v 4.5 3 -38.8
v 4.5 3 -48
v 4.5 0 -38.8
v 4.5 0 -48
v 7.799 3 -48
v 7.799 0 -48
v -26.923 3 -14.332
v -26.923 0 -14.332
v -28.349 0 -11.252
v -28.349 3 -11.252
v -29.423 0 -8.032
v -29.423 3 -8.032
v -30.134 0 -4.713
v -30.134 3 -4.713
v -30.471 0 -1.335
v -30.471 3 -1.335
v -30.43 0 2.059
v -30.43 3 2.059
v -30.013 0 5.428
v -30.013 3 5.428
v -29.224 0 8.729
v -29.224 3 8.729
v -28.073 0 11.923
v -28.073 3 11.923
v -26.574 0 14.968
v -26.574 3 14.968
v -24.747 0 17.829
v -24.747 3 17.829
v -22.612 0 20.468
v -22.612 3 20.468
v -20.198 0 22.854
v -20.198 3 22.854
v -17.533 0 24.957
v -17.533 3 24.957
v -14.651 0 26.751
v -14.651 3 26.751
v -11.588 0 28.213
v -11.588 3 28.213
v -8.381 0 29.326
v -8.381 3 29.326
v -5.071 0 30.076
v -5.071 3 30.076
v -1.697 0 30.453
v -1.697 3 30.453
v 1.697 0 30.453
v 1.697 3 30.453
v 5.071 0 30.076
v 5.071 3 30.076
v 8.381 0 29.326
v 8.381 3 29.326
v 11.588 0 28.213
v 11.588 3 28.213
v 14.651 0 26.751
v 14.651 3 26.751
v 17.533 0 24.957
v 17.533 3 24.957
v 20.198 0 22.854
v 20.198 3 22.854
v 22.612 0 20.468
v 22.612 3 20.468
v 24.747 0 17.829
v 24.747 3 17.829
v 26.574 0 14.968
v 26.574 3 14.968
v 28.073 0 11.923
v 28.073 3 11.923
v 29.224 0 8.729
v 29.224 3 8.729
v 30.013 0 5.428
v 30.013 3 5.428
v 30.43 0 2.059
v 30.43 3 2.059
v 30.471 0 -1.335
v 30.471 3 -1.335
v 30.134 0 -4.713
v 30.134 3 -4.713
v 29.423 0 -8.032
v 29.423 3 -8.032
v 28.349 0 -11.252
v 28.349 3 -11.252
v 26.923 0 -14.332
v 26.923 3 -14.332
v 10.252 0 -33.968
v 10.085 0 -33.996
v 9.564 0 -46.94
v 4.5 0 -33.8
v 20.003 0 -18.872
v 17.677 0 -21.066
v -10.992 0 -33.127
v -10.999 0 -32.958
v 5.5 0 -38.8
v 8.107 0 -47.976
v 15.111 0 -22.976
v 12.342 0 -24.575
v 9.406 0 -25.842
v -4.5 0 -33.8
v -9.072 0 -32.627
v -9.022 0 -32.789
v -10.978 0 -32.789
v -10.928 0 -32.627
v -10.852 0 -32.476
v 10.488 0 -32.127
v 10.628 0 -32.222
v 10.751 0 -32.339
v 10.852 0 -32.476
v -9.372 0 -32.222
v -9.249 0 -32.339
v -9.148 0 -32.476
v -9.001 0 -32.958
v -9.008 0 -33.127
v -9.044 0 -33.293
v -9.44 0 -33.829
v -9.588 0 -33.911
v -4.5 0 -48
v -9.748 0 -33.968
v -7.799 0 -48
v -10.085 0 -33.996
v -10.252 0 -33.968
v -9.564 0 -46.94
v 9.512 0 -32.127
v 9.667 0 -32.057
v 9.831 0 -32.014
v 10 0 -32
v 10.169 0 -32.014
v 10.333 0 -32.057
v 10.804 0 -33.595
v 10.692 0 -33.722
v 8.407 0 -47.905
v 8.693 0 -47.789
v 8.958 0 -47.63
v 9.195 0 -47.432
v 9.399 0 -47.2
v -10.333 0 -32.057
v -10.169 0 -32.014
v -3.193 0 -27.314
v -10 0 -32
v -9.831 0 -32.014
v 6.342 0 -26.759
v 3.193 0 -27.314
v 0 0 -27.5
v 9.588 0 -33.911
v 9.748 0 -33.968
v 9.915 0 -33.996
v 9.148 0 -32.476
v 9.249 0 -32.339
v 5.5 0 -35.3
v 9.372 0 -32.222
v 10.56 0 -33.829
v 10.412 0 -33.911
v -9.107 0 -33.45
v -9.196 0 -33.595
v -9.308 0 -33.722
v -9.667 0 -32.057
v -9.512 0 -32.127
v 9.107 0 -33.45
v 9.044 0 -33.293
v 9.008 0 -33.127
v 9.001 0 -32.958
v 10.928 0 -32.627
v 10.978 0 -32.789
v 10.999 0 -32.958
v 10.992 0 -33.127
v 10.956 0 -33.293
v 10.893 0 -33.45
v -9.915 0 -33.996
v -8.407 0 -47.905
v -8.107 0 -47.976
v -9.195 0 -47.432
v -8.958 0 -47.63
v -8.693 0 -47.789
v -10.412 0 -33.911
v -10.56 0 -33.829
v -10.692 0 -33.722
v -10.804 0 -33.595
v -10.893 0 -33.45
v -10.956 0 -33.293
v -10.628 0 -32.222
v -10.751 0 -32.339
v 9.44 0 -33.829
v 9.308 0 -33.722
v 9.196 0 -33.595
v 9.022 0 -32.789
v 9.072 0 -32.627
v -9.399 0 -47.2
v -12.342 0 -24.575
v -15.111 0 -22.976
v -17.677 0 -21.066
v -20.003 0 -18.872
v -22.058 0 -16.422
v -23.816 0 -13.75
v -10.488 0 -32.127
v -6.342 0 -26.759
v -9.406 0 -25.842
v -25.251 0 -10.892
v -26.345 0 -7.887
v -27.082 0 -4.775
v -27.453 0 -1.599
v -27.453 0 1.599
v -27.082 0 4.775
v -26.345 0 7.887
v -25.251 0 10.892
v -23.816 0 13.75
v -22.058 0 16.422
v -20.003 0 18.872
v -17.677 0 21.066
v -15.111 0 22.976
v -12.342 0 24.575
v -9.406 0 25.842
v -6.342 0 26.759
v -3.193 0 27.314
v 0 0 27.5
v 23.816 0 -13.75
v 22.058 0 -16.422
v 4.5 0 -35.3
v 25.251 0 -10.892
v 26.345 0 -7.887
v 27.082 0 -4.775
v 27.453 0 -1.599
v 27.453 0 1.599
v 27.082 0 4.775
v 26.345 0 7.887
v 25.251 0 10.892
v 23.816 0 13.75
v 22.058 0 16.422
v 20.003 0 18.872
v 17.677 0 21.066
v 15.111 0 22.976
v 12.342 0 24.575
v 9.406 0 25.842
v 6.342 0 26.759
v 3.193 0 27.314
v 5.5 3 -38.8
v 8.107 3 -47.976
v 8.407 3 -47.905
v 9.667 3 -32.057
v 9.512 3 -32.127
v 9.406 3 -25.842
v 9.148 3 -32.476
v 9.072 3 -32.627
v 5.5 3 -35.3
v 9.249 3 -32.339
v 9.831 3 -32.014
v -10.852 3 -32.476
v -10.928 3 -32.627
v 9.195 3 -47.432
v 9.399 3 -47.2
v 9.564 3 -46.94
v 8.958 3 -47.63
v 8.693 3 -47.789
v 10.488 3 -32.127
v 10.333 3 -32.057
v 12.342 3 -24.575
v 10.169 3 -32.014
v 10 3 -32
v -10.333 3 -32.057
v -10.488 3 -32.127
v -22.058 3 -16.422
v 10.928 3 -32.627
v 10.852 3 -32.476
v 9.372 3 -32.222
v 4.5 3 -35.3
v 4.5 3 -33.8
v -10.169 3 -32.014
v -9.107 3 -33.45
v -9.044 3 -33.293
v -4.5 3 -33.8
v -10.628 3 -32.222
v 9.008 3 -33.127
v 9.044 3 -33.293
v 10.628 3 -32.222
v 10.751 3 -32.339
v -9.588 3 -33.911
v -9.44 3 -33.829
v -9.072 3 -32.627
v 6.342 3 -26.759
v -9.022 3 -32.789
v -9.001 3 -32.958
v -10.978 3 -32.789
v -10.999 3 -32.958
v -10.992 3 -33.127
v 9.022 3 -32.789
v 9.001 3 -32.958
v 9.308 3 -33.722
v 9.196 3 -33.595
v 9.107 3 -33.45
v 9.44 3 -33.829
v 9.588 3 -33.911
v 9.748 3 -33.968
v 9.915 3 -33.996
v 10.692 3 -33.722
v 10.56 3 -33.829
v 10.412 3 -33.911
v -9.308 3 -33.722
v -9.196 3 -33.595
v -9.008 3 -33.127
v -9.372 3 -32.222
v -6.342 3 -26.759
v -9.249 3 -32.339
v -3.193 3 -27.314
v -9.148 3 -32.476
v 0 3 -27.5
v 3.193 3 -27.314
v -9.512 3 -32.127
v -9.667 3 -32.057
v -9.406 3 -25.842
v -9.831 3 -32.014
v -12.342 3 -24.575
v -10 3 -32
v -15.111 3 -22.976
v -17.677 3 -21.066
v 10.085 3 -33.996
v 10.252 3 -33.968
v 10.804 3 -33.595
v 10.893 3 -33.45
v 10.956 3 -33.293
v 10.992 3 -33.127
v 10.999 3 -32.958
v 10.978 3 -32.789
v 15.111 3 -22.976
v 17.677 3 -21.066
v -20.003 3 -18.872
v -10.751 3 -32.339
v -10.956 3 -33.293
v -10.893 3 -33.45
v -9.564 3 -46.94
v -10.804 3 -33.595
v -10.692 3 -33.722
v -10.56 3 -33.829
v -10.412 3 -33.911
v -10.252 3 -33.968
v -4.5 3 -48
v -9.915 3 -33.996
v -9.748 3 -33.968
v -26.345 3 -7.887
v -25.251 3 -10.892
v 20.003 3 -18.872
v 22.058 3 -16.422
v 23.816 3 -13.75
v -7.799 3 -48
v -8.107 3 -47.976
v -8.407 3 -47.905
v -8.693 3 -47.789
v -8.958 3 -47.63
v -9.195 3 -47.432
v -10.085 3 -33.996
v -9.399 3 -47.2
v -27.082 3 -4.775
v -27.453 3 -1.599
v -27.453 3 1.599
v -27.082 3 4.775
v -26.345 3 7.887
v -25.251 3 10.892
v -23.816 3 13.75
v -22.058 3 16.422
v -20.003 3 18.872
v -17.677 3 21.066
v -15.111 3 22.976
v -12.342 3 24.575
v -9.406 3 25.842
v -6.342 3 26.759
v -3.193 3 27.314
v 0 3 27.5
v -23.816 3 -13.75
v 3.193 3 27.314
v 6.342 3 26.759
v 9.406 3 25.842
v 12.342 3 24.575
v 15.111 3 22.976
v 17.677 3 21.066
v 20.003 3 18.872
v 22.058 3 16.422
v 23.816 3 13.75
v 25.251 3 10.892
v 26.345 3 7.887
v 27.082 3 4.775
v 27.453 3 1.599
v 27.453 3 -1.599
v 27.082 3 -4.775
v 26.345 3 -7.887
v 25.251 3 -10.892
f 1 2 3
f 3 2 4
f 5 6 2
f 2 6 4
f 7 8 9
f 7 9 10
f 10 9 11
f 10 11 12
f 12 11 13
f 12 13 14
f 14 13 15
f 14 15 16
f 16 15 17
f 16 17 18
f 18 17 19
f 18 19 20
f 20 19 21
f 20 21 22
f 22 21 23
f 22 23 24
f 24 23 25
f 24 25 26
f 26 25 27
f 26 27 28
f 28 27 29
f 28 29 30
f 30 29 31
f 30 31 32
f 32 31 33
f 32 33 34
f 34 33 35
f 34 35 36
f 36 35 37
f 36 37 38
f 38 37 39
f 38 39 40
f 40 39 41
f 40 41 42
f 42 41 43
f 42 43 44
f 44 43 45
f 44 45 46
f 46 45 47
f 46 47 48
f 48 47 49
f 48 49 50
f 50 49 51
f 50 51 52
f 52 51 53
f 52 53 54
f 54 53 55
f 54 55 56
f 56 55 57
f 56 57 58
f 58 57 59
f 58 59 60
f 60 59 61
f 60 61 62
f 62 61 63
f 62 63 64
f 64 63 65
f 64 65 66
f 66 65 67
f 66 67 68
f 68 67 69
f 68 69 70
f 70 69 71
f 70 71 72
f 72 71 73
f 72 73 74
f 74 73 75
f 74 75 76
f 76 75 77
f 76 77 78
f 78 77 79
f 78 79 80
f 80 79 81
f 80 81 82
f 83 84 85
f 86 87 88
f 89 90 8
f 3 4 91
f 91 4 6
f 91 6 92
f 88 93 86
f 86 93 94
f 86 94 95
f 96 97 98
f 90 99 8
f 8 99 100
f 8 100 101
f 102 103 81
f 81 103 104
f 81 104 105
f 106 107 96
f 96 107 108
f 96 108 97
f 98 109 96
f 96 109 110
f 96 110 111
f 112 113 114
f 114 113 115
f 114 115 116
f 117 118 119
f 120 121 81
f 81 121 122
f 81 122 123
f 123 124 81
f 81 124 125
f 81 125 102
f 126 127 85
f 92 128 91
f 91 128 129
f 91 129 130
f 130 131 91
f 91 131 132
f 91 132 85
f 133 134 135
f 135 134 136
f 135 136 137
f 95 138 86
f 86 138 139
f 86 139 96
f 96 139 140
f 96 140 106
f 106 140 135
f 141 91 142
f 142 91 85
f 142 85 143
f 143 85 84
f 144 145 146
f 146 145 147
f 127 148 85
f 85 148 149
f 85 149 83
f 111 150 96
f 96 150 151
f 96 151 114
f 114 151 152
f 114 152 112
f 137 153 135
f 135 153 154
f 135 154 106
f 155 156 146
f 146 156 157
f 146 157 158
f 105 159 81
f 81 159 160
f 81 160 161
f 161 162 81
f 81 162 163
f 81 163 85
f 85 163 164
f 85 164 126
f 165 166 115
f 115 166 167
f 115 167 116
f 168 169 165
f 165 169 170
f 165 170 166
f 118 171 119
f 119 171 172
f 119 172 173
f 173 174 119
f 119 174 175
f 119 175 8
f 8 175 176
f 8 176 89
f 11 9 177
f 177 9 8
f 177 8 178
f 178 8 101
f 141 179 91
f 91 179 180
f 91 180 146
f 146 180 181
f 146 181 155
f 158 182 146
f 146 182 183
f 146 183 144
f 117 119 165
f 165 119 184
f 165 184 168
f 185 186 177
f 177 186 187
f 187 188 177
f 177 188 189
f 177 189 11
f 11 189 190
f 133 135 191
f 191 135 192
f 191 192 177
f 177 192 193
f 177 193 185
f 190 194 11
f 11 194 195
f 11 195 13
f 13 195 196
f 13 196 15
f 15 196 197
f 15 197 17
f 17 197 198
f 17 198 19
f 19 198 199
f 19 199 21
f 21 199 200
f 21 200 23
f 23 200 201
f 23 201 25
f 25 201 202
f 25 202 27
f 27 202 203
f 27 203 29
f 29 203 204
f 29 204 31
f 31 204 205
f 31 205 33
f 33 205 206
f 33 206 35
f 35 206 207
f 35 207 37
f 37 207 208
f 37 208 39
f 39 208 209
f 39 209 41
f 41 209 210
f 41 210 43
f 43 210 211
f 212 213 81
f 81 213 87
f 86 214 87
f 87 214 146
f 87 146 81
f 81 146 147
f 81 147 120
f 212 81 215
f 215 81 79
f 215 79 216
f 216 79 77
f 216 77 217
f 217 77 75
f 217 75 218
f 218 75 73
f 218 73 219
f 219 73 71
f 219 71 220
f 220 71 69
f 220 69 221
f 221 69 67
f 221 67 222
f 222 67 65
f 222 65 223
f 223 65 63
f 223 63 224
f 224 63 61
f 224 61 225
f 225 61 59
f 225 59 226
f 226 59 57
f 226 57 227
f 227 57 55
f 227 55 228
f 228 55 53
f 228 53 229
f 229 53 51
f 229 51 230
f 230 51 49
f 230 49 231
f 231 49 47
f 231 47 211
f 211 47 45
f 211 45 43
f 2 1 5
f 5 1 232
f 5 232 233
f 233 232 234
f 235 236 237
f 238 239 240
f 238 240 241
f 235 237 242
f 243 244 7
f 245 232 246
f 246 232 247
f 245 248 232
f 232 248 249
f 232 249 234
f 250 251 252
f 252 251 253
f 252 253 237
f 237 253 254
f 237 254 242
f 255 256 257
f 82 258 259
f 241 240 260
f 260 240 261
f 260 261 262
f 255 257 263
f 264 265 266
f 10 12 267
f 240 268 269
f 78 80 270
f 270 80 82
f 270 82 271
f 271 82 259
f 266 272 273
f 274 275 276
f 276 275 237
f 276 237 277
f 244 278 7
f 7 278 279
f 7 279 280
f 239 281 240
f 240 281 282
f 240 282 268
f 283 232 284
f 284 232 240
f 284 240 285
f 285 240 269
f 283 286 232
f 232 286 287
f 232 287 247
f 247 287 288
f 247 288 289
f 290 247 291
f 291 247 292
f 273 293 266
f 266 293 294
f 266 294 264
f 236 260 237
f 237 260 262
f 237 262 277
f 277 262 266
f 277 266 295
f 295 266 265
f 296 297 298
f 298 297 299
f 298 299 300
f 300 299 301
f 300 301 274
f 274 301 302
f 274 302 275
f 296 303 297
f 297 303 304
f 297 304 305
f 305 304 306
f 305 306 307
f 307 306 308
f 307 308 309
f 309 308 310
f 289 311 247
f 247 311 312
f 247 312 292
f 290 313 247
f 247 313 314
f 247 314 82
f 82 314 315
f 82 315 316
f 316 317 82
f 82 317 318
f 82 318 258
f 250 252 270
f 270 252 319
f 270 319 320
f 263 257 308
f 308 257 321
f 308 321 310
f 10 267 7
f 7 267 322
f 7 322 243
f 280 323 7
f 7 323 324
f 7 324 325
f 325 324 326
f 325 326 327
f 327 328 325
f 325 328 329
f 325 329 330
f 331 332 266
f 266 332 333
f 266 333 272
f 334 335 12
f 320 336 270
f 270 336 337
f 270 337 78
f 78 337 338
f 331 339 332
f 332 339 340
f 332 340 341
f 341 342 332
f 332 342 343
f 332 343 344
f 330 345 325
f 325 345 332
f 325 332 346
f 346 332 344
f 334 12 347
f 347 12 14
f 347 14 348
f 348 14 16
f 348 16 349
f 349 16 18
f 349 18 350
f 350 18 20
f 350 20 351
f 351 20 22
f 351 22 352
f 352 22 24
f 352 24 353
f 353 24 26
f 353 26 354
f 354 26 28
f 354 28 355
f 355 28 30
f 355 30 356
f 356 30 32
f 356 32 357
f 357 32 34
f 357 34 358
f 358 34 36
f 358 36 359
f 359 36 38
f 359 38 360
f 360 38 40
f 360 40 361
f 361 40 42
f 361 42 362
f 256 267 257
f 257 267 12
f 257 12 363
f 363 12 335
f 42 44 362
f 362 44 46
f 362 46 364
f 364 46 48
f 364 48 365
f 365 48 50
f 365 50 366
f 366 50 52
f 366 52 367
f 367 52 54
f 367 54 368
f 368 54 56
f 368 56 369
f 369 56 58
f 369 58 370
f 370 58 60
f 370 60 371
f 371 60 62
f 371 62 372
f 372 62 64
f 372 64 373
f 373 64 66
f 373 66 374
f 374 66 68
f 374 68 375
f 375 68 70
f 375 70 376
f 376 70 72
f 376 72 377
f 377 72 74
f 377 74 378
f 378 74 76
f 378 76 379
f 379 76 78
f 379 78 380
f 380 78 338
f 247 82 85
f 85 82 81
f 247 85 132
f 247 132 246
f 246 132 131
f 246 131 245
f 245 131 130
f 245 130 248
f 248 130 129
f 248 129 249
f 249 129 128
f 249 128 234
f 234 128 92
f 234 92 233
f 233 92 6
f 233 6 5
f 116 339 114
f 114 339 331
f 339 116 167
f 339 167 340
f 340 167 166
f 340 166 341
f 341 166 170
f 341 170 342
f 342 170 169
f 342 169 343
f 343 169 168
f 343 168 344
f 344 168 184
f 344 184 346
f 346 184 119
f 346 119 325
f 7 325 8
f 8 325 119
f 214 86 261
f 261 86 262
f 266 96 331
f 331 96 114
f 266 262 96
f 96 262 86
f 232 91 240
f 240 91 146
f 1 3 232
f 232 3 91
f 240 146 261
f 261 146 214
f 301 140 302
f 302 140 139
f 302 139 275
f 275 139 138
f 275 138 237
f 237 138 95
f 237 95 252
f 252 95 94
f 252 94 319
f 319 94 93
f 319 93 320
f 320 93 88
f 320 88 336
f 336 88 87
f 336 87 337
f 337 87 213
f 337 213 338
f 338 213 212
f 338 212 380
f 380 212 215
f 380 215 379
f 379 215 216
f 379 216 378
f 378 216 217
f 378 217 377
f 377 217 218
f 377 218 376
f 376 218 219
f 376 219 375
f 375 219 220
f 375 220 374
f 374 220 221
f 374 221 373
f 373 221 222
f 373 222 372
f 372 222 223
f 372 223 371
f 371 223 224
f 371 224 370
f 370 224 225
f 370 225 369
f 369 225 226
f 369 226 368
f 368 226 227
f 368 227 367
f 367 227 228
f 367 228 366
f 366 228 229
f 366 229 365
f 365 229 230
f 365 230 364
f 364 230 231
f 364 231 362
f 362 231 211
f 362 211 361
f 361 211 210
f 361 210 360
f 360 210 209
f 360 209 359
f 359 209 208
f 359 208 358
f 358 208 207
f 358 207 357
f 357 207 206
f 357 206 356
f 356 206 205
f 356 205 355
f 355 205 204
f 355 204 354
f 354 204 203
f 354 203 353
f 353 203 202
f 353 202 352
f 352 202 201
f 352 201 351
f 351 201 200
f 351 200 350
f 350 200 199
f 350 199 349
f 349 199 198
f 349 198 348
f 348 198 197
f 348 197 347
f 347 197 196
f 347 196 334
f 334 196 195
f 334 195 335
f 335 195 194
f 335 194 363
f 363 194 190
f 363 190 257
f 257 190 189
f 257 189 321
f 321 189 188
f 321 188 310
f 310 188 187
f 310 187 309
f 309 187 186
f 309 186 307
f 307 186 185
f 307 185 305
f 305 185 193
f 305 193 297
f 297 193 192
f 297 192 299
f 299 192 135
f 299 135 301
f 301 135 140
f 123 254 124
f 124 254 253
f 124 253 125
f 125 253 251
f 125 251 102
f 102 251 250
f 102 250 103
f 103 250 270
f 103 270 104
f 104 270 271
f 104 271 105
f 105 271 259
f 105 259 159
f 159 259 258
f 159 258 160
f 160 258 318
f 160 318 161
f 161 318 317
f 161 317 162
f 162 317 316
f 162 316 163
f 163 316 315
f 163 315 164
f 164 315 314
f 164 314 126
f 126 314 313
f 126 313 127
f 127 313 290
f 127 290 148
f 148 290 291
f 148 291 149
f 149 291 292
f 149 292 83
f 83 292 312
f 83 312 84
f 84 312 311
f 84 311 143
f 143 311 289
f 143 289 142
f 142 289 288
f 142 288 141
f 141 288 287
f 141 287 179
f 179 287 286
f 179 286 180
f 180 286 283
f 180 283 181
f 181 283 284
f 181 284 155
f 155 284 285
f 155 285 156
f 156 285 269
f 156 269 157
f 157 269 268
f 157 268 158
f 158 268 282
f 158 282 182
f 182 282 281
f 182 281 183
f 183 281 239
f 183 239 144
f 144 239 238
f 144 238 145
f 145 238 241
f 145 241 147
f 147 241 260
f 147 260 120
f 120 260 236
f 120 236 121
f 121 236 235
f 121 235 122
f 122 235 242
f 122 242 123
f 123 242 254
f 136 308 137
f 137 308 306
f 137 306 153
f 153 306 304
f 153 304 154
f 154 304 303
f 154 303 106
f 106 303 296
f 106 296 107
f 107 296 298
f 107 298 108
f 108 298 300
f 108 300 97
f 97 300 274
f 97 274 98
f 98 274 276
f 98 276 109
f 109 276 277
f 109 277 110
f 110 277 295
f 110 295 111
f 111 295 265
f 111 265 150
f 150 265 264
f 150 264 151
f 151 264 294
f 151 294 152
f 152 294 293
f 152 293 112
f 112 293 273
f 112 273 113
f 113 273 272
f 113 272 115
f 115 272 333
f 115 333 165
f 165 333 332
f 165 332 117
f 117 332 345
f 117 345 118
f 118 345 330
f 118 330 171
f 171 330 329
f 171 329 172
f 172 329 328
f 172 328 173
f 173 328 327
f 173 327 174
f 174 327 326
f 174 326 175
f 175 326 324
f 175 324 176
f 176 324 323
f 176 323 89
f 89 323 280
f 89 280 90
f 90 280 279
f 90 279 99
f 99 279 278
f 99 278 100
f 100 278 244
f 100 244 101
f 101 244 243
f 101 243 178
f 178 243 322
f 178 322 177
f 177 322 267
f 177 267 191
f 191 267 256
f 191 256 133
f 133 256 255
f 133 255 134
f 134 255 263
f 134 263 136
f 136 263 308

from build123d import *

# Parameters (mm, degrees)
BOSS_EXTRUDE1_DEPTH     = 1
BOSS_EXTRUDE2_DEPTH     = 2
SKETCH5_R               = 2.25
SKETCH5_R_2             = 0.5
CUT_EXTRUDE2_DEPTH      = 75.390311459
CUT_EXTRUDE3_DEPTH      = 75.423910398
CUT_EXTRUDE3_DEPTH_BACK = 75.423910398
SKETCH6_OUTSIDE_W       = 86.15
SKETCH6_OUTSIDE_H       = 123.471
SKETCH6_OUTSIDE_R       = 30.5
BOSS_EXTRUDE3_DEPTH     = 3
SKETCH8_W               = 9
SKETCH8_H               = 28.4
CUT_EXTRUDE4_DEPTH      = 3
SKETCH10_W              = 1.894041394
SKETCH10_H              = 3.5
CUT_EXTRUDE6_DEPTH      = 13
CUT_EXTRUDE7_DEPTH      = 57.949539067
CUT_EXTRUDE7_DEPTH_BACK = 57.949539067
SKETCH11_R              = 27.5
SKETCH11_W              = 9
SKETCH11_H              = 14.2
CUT_EXTRUDE8_DEPTH      = 57.949539067
CUT_EXTRUDE8_DEPTH_BACK = 57.949539067
SKETCH12_R              = 1


with BuildPart() as part:
    # Sketch2 → Boss-Extrude1 (new body)
    with BuildSketch(Plane(origin=(0, 0, 0), x_dir=(1, 0, 0), z_dir=(0, 1, 0))):
        with BuildLine():
            Line((-9.5, 67.820855486), (9.5, 67.820855486))
            ThreePointArc((9.5, 67.820855486), (11.621320344, 66.94217583), (12.5, 64.820855486))
            Line((12.5, 64.820855486), (12.5, 33.674916481))
            ThreePointArc((12.5, 33.674916481), (13.680828963, 28.960871273), (16.944444444, 25.360122288))
            ThreePointArc((16.944444444, 25.360122288), (0, -30.5), (-16.944444444, 25.360122288))
            ThreePointArc((-16.944444444, 25.360122288), (-13.680828963, 28.960871273), (-12.5, 33.674916481))
            Line((-12.5, 33.674916481), (-12.5, 64.820855486))
            ThreePointArc((-12.5, 64.820855486), (-11.621320344, 66.94217583), (-9.5, 67.820855486))
        make_face()
        with BuildLine():
            Line((3.5516796, -15.713533545), (4.759805249, -3.321913887))
            Line((4.759805249, -3.321913887), (6.334764225, -3.329153378))
            ThreePointArc((6.334764225, -3.329153378), (9.649898055, -0.044356931), (6.365101608, 3.270776898))
            Line((6.365101608, 3.270776898), (4.790142632, 3.278016389))
            Line((4.790142632, 3.278016389), (3.695984805, 15.680218773))
            ThreePointArc((3.695984805, 15.680218773), (0.087334891, 18.999799278), (-3.5516796, 15.713533545))
            Line((-3.5516796, 15.713533545), (-4.759805249, 3.321913887))
            Line((-4.759805249, 3.321913887), (-6.334764225, 3.329153378))
            ThreePointArc((-6.334764225, 3.329153378), (-9.649898055, 0.044356931), (-6.365101608, -3.270776898))
            Line((-6.365101608, -3.270776898), (-4.790142632, -3.278016389))
            Line((-4.790142632, -3.278016389), (-3.695984805, -15.680218773))
            ThreePointArc((-3.695984805, -15.680218773), (-0.087334891, -18.999799278), (3.5516796, -15.713533545))
        make_face(mode=Mode.SUBTRACT)
    extrude(amount=BOSS_EXTRUDE1_DEPTH)

    # Sketch3 → Boss-Extrude2 (add)
    with BuildSketch(Plane(origin=(0, 1, 0), x_dir=(1, 0, 0), z_dir=(0, 1, 0))):
        with BuildLine():
            Line((-12.5, 64.820855486), (-12.5, 33.674916481))
            ThreePointArc((-12.5, 33.674916481), (-13.680828963, 28.960871273), (-16.944444444, 25.360122288))
            ThreePointArc((-16.944444444, 25.360122288), (0, -30.5), (16.944444444, 25.360122288))
            ThreePointArc((16.944444444, 25.360122288), (13.680828963, 28.960871273), (12.5, 33.674916481))
            Line((12.5, 33.674916481), (12.5, 64.820855486))
            ThreePointArc((12.5, 64.820855486), (11.621320344, 66.94217583), (9.5, 67.820855486))
            Line((9.5, 67.820855486), (-9.5, 67.820855486))
            ThreePointArc((-9.5, 67.820855486), (-11.621320344, 66.94217583), (-12.5, 64.820855486))
        make_face()
    extrude(amount=BOSS_EXTRUDE2_DEPTH)

    # Sketch5 → Cut-Extrude2 (cut, through all)
    with BuildSketch(Plane.XZ.offset(-1)):
        Circle(SKETCH5_R)
        with Locations((0.022708028, 13.233852211)):
            Circle(SKETCH5_R_2)
        with Locations((-0.022708028, -13.233852211)):
            Circle(SKETCH5_R_2)
        with Locations((-6.853849078, 0.011760551)):
            Circle(SKETCH5_R_2)
        with Locations((6.853849078, -0.011760551)):
            Circle(SKETCH5_R_2)
    extrude(amount=-CUT_EXTRUDE2_DEPTH, mode=Mode.SUBTRACT)

    # Sketch6 outside → Cut-Extrude3 (cut, two sides: drawn at the far end of the back side and taken through both)
    with BuildSketch(Plane(origin=(0, 3, 0), x_dir=(1, 0, 0), z_dir=(0, 1, 0)).offset(-CUT_EXTRUDE3_DEPTH_BACK)):
        with Locations((0, 18.6605)):
            Rectangle(SKETCH6_OUTSIDE_W, SKETCH6_OUTSIDE_H)
        Circle(SKETCH6_OUTSIDE_R, mode=Mode.SUBTRACT)
    extrude(amount=CUT_EXTRUDE3_DEPTH + CUT_EXTRUDE3_DEPTH_BACK, mode=Mode.SUBTRACT)

    # Sketch7 → Boss-Extrude3 (add)
    with BuildSketch(Plane.XZ):
        with BuildLine():
            Line((-7.798950698, -48), (7.798950698, -48))
            ThreePointArc((7.798950698, -48), (8.828603574, -47.714588859), (9.564382048, -46.939814955))
            Line((9.564382048, -46.939814955), (26.92282808, -14.332178068))
            Line((26.92282808, -14.332178068), (0, -22.549328153))
            Line((0, -22.549328153), (-26.92282808, -14.332178068))
            Line((-26.92282808, -14.332178068), (-9.564382048, -46.939814955))
            ThreePointArc((-9.564382048, -46.939814955), (-8.828603574, -47.714588859), (-7.798950698, -48))
        make_face()
    extrude(amount=-BOSS_EXTRUDE3_DEPTH)

    # Sketch8 → Cut-Extrude4 (cut)
    with BuildSketch(Plane.XZ):
        with Locations((0, -48)):
            Rectangle(SKETCH8_W, SKETCH8_H)
    extrude(amount=-CUT_EXTRUDE4_DEPTH, mode=Mode.SUBTRACT)

    # Sketch10 → Cut-Extrude6 (cut)
    with BuildSketch(Plane.XZ.offset(-3)):
        with Locations((4.552979303, -37.05)):
            Rectangle(SKETCH10_W, SKETCH10_H)
    extrude(amount=CUT_EXTRUDE6_DEPTH, mode=Mode.SUBTRACT)

    # Sketch11 → Cut-Extrude7 (cut, two sides: drawn at the far end of the back side and taken through both)
    with BuildSketch(Plane.XZ.offset(-CUT_EXTRUDE7_DEPTH_BACK)):
        Circle(SKETCH11_R)
        with Locations((0, -40.9)):
            Rectangle(SKETCH11_W, SKETCH11_H)
    extrude(amount=CUT_EXTRUDE7_DEPTH + CUT_EXTRUDE7_DEPTH_BACK, mode=Mode.SUBTRACT)

    # Sketch12 → Cut-Extrude8 (cut, two sides: drawn at the far end of the back side and taken through both)
    with BuildSketch(Plane(origin=(0, 3, 0), x_dir=(1, 0, 0), z_dir=(0, 1, 0)).offset(-CUT_EXTRUDE8_DEPTH_BACK)):
        with Locations((-10, 33)):
            Circle(SKETCH12_R)
        with Locations((10, 33)):
            Circle(SKETCH12_R)
    extrude(amount=CUT_EXTRUDE8_DEPTH + CUT_EXTRUDE8_DEPTH_BACK, mode=Mode.SUBTRACT)


solid = part.part
